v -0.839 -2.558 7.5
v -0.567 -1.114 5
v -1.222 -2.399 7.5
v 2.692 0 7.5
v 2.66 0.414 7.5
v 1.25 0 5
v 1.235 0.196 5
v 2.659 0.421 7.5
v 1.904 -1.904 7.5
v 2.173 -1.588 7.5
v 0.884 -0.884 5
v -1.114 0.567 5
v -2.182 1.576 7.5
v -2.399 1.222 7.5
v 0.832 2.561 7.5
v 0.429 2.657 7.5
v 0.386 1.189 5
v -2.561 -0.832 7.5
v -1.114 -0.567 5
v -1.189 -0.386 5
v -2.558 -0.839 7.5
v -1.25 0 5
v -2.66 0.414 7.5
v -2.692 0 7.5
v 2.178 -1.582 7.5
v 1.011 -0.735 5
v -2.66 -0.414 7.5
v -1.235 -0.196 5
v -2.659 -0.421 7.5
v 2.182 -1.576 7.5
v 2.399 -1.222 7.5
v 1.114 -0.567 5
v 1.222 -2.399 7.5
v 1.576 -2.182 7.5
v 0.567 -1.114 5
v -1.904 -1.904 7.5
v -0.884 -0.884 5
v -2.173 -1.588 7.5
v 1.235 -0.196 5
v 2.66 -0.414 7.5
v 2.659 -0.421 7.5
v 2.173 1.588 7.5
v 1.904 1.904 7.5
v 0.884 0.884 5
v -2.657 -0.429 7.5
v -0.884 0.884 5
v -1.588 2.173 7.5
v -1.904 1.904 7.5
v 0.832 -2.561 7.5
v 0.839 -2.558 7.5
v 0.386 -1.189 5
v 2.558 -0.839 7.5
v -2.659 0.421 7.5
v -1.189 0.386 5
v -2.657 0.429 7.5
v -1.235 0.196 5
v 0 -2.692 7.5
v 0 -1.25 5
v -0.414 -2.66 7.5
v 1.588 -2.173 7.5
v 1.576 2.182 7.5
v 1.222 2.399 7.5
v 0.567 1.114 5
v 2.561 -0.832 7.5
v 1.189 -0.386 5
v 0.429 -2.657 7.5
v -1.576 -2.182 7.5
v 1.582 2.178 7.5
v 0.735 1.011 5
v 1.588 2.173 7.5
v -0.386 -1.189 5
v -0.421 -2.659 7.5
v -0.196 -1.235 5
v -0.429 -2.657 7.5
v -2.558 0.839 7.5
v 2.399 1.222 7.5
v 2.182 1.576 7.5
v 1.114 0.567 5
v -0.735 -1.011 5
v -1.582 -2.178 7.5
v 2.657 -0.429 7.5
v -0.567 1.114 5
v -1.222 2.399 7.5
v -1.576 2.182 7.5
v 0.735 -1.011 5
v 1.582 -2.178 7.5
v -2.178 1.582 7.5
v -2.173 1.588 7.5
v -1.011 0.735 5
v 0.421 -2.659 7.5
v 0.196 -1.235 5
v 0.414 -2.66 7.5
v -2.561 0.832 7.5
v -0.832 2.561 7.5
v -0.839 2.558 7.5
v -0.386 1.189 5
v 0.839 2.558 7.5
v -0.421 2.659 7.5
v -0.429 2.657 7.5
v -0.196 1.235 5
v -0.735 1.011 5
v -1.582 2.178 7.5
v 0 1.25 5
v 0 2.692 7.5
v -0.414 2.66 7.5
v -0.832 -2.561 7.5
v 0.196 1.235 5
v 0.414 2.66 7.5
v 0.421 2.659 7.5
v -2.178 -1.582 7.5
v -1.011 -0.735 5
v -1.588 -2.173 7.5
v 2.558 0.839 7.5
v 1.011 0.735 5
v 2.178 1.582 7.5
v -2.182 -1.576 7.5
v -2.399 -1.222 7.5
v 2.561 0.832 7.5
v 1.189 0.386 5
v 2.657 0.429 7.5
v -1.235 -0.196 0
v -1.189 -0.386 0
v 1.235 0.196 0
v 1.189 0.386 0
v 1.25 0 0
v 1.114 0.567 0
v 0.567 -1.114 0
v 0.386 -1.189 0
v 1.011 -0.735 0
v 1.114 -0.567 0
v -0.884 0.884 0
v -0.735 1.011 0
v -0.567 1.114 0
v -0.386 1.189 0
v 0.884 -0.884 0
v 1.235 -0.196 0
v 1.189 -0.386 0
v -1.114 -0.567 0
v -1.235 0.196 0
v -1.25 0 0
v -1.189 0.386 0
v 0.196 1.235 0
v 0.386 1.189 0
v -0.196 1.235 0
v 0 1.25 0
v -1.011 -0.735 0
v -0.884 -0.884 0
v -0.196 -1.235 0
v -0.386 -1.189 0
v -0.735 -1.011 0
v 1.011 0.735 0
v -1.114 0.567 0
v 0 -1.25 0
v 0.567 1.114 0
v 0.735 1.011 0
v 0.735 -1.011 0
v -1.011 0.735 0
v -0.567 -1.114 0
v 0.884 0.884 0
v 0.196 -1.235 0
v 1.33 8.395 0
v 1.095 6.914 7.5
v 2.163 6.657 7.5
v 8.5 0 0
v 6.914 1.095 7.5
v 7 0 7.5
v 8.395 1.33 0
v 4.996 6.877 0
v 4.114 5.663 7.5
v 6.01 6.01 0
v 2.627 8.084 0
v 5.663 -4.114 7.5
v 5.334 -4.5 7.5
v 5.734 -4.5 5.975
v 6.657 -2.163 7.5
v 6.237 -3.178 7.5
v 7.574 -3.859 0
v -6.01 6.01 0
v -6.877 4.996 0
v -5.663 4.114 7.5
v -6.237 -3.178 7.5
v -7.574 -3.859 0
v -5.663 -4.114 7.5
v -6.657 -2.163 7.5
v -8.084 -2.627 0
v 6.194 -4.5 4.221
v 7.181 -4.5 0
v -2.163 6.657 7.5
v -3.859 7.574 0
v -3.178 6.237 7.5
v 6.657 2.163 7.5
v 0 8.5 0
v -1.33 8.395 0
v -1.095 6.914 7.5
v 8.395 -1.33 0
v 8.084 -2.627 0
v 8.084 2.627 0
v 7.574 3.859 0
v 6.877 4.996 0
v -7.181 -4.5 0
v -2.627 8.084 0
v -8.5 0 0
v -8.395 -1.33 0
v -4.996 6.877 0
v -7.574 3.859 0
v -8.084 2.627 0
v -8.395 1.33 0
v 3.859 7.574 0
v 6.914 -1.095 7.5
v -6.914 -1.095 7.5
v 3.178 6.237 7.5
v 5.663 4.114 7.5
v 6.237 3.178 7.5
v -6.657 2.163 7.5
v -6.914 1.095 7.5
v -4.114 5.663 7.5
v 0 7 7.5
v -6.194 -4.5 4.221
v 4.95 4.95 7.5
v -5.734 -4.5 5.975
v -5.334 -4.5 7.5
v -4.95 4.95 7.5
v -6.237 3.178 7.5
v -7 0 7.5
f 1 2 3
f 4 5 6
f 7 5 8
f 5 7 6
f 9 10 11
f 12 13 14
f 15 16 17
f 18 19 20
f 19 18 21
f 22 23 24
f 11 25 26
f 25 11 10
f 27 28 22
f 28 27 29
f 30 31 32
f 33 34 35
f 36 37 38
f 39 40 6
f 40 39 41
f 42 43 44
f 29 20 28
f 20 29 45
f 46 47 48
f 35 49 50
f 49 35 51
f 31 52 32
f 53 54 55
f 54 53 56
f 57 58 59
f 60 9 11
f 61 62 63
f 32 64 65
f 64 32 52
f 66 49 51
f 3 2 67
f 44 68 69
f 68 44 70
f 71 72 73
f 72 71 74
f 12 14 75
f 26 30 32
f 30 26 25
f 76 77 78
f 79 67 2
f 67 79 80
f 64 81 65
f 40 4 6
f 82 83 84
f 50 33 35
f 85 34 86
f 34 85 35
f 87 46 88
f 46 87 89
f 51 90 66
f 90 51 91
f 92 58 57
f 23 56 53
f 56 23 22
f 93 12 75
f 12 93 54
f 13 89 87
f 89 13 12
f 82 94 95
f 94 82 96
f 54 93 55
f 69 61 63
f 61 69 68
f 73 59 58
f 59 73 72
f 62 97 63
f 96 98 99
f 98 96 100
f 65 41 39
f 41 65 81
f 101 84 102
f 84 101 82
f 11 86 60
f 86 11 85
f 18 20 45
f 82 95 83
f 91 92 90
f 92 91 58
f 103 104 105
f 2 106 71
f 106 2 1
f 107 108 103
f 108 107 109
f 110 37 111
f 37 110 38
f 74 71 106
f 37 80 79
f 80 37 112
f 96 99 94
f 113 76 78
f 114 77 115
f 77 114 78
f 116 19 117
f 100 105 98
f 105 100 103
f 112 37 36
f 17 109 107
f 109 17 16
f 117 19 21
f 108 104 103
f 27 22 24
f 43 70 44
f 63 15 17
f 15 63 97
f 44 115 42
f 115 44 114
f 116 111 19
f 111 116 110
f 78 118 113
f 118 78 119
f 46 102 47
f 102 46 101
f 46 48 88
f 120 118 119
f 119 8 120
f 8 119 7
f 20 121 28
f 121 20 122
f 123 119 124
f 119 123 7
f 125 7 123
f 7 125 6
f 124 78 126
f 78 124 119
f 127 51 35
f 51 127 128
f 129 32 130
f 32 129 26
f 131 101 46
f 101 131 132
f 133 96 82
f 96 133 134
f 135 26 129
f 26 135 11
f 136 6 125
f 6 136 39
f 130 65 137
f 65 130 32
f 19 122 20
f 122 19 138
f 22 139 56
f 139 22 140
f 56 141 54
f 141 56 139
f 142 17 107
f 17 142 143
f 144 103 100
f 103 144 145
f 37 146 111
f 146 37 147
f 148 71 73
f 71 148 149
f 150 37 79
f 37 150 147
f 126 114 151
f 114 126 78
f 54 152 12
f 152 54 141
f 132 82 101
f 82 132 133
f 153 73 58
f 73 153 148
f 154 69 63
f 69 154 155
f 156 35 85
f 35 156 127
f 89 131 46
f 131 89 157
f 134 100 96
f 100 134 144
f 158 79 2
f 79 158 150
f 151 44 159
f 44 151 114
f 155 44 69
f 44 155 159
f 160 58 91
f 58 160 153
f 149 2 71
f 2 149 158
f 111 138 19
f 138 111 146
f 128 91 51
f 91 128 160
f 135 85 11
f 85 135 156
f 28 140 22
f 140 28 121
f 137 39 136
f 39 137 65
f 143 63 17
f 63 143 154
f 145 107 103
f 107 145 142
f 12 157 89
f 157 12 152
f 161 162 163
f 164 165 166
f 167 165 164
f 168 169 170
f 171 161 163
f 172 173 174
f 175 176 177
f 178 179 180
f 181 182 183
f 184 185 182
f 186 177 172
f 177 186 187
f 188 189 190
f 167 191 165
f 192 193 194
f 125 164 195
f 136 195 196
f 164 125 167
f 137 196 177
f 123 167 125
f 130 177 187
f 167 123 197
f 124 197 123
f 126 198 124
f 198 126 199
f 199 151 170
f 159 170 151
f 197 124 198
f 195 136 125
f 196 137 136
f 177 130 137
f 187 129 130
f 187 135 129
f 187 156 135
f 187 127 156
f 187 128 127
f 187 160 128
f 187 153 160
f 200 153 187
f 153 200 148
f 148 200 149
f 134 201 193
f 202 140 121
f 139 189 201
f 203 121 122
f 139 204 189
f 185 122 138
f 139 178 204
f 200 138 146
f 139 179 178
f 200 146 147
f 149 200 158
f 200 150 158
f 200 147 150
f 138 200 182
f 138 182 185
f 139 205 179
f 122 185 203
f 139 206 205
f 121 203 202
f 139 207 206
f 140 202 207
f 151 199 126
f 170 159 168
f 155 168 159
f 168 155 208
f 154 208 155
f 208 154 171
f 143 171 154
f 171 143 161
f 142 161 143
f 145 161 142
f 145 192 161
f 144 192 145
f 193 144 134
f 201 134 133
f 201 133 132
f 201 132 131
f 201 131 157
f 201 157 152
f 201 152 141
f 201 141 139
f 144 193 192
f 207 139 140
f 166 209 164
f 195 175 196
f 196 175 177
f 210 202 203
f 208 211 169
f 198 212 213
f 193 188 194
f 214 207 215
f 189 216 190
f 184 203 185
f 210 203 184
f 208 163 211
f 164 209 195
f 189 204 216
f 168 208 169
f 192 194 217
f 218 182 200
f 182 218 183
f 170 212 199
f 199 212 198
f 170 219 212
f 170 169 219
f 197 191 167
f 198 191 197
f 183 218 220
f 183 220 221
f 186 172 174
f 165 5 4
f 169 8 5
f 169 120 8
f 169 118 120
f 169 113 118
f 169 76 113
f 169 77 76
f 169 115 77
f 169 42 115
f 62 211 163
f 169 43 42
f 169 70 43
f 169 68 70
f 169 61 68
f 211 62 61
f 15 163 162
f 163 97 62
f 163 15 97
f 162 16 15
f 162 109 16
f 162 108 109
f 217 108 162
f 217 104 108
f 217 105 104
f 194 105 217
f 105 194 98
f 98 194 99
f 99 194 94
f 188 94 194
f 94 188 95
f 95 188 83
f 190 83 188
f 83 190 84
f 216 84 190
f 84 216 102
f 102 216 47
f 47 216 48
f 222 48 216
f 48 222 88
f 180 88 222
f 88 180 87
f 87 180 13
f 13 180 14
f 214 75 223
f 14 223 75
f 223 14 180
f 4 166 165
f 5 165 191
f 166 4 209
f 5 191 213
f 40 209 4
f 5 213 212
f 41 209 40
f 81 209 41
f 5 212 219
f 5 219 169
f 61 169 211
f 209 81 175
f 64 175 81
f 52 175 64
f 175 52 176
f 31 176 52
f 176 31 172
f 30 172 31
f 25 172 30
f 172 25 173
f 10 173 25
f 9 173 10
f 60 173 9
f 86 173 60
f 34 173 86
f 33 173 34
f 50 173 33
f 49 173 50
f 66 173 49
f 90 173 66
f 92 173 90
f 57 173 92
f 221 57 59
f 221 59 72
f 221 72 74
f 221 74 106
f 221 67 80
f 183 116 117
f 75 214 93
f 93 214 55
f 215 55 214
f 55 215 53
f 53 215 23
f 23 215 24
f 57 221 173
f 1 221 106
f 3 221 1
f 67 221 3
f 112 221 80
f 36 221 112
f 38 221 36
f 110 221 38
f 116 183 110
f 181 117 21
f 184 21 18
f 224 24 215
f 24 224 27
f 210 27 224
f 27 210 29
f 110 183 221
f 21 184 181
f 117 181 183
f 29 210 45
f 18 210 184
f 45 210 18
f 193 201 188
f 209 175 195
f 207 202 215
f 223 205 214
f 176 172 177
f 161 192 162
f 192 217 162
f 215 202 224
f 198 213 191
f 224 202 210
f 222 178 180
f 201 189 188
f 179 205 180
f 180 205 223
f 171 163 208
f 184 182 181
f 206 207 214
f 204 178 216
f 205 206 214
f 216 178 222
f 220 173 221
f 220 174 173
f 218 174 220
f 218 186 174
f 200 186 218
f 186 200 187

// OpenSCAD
// AUTHOR: Samuel M.H. <samuel.mh@gmail.com>
// VERSION: 2020-JAN-02
// DESCRIPTION: wardrobe door stopper.

difference(){
    cylinder(h=7.5, d1=17, d2=14, $fn=40); //Base cone
    union(){  // Hole for the bolt
        translate([0,0,7.5-2.6+0.1]) cylinder(h=2.6, d1=2.5, d2=5.5, $fn=40);
        translate([0,0,-0.1]) cylinder(h=7.8,d=2.5, $fn=40);
    } //Flat cut to stop the door
    translate([0,-17-4.5,0]) cube(17*2, center=true);
}
